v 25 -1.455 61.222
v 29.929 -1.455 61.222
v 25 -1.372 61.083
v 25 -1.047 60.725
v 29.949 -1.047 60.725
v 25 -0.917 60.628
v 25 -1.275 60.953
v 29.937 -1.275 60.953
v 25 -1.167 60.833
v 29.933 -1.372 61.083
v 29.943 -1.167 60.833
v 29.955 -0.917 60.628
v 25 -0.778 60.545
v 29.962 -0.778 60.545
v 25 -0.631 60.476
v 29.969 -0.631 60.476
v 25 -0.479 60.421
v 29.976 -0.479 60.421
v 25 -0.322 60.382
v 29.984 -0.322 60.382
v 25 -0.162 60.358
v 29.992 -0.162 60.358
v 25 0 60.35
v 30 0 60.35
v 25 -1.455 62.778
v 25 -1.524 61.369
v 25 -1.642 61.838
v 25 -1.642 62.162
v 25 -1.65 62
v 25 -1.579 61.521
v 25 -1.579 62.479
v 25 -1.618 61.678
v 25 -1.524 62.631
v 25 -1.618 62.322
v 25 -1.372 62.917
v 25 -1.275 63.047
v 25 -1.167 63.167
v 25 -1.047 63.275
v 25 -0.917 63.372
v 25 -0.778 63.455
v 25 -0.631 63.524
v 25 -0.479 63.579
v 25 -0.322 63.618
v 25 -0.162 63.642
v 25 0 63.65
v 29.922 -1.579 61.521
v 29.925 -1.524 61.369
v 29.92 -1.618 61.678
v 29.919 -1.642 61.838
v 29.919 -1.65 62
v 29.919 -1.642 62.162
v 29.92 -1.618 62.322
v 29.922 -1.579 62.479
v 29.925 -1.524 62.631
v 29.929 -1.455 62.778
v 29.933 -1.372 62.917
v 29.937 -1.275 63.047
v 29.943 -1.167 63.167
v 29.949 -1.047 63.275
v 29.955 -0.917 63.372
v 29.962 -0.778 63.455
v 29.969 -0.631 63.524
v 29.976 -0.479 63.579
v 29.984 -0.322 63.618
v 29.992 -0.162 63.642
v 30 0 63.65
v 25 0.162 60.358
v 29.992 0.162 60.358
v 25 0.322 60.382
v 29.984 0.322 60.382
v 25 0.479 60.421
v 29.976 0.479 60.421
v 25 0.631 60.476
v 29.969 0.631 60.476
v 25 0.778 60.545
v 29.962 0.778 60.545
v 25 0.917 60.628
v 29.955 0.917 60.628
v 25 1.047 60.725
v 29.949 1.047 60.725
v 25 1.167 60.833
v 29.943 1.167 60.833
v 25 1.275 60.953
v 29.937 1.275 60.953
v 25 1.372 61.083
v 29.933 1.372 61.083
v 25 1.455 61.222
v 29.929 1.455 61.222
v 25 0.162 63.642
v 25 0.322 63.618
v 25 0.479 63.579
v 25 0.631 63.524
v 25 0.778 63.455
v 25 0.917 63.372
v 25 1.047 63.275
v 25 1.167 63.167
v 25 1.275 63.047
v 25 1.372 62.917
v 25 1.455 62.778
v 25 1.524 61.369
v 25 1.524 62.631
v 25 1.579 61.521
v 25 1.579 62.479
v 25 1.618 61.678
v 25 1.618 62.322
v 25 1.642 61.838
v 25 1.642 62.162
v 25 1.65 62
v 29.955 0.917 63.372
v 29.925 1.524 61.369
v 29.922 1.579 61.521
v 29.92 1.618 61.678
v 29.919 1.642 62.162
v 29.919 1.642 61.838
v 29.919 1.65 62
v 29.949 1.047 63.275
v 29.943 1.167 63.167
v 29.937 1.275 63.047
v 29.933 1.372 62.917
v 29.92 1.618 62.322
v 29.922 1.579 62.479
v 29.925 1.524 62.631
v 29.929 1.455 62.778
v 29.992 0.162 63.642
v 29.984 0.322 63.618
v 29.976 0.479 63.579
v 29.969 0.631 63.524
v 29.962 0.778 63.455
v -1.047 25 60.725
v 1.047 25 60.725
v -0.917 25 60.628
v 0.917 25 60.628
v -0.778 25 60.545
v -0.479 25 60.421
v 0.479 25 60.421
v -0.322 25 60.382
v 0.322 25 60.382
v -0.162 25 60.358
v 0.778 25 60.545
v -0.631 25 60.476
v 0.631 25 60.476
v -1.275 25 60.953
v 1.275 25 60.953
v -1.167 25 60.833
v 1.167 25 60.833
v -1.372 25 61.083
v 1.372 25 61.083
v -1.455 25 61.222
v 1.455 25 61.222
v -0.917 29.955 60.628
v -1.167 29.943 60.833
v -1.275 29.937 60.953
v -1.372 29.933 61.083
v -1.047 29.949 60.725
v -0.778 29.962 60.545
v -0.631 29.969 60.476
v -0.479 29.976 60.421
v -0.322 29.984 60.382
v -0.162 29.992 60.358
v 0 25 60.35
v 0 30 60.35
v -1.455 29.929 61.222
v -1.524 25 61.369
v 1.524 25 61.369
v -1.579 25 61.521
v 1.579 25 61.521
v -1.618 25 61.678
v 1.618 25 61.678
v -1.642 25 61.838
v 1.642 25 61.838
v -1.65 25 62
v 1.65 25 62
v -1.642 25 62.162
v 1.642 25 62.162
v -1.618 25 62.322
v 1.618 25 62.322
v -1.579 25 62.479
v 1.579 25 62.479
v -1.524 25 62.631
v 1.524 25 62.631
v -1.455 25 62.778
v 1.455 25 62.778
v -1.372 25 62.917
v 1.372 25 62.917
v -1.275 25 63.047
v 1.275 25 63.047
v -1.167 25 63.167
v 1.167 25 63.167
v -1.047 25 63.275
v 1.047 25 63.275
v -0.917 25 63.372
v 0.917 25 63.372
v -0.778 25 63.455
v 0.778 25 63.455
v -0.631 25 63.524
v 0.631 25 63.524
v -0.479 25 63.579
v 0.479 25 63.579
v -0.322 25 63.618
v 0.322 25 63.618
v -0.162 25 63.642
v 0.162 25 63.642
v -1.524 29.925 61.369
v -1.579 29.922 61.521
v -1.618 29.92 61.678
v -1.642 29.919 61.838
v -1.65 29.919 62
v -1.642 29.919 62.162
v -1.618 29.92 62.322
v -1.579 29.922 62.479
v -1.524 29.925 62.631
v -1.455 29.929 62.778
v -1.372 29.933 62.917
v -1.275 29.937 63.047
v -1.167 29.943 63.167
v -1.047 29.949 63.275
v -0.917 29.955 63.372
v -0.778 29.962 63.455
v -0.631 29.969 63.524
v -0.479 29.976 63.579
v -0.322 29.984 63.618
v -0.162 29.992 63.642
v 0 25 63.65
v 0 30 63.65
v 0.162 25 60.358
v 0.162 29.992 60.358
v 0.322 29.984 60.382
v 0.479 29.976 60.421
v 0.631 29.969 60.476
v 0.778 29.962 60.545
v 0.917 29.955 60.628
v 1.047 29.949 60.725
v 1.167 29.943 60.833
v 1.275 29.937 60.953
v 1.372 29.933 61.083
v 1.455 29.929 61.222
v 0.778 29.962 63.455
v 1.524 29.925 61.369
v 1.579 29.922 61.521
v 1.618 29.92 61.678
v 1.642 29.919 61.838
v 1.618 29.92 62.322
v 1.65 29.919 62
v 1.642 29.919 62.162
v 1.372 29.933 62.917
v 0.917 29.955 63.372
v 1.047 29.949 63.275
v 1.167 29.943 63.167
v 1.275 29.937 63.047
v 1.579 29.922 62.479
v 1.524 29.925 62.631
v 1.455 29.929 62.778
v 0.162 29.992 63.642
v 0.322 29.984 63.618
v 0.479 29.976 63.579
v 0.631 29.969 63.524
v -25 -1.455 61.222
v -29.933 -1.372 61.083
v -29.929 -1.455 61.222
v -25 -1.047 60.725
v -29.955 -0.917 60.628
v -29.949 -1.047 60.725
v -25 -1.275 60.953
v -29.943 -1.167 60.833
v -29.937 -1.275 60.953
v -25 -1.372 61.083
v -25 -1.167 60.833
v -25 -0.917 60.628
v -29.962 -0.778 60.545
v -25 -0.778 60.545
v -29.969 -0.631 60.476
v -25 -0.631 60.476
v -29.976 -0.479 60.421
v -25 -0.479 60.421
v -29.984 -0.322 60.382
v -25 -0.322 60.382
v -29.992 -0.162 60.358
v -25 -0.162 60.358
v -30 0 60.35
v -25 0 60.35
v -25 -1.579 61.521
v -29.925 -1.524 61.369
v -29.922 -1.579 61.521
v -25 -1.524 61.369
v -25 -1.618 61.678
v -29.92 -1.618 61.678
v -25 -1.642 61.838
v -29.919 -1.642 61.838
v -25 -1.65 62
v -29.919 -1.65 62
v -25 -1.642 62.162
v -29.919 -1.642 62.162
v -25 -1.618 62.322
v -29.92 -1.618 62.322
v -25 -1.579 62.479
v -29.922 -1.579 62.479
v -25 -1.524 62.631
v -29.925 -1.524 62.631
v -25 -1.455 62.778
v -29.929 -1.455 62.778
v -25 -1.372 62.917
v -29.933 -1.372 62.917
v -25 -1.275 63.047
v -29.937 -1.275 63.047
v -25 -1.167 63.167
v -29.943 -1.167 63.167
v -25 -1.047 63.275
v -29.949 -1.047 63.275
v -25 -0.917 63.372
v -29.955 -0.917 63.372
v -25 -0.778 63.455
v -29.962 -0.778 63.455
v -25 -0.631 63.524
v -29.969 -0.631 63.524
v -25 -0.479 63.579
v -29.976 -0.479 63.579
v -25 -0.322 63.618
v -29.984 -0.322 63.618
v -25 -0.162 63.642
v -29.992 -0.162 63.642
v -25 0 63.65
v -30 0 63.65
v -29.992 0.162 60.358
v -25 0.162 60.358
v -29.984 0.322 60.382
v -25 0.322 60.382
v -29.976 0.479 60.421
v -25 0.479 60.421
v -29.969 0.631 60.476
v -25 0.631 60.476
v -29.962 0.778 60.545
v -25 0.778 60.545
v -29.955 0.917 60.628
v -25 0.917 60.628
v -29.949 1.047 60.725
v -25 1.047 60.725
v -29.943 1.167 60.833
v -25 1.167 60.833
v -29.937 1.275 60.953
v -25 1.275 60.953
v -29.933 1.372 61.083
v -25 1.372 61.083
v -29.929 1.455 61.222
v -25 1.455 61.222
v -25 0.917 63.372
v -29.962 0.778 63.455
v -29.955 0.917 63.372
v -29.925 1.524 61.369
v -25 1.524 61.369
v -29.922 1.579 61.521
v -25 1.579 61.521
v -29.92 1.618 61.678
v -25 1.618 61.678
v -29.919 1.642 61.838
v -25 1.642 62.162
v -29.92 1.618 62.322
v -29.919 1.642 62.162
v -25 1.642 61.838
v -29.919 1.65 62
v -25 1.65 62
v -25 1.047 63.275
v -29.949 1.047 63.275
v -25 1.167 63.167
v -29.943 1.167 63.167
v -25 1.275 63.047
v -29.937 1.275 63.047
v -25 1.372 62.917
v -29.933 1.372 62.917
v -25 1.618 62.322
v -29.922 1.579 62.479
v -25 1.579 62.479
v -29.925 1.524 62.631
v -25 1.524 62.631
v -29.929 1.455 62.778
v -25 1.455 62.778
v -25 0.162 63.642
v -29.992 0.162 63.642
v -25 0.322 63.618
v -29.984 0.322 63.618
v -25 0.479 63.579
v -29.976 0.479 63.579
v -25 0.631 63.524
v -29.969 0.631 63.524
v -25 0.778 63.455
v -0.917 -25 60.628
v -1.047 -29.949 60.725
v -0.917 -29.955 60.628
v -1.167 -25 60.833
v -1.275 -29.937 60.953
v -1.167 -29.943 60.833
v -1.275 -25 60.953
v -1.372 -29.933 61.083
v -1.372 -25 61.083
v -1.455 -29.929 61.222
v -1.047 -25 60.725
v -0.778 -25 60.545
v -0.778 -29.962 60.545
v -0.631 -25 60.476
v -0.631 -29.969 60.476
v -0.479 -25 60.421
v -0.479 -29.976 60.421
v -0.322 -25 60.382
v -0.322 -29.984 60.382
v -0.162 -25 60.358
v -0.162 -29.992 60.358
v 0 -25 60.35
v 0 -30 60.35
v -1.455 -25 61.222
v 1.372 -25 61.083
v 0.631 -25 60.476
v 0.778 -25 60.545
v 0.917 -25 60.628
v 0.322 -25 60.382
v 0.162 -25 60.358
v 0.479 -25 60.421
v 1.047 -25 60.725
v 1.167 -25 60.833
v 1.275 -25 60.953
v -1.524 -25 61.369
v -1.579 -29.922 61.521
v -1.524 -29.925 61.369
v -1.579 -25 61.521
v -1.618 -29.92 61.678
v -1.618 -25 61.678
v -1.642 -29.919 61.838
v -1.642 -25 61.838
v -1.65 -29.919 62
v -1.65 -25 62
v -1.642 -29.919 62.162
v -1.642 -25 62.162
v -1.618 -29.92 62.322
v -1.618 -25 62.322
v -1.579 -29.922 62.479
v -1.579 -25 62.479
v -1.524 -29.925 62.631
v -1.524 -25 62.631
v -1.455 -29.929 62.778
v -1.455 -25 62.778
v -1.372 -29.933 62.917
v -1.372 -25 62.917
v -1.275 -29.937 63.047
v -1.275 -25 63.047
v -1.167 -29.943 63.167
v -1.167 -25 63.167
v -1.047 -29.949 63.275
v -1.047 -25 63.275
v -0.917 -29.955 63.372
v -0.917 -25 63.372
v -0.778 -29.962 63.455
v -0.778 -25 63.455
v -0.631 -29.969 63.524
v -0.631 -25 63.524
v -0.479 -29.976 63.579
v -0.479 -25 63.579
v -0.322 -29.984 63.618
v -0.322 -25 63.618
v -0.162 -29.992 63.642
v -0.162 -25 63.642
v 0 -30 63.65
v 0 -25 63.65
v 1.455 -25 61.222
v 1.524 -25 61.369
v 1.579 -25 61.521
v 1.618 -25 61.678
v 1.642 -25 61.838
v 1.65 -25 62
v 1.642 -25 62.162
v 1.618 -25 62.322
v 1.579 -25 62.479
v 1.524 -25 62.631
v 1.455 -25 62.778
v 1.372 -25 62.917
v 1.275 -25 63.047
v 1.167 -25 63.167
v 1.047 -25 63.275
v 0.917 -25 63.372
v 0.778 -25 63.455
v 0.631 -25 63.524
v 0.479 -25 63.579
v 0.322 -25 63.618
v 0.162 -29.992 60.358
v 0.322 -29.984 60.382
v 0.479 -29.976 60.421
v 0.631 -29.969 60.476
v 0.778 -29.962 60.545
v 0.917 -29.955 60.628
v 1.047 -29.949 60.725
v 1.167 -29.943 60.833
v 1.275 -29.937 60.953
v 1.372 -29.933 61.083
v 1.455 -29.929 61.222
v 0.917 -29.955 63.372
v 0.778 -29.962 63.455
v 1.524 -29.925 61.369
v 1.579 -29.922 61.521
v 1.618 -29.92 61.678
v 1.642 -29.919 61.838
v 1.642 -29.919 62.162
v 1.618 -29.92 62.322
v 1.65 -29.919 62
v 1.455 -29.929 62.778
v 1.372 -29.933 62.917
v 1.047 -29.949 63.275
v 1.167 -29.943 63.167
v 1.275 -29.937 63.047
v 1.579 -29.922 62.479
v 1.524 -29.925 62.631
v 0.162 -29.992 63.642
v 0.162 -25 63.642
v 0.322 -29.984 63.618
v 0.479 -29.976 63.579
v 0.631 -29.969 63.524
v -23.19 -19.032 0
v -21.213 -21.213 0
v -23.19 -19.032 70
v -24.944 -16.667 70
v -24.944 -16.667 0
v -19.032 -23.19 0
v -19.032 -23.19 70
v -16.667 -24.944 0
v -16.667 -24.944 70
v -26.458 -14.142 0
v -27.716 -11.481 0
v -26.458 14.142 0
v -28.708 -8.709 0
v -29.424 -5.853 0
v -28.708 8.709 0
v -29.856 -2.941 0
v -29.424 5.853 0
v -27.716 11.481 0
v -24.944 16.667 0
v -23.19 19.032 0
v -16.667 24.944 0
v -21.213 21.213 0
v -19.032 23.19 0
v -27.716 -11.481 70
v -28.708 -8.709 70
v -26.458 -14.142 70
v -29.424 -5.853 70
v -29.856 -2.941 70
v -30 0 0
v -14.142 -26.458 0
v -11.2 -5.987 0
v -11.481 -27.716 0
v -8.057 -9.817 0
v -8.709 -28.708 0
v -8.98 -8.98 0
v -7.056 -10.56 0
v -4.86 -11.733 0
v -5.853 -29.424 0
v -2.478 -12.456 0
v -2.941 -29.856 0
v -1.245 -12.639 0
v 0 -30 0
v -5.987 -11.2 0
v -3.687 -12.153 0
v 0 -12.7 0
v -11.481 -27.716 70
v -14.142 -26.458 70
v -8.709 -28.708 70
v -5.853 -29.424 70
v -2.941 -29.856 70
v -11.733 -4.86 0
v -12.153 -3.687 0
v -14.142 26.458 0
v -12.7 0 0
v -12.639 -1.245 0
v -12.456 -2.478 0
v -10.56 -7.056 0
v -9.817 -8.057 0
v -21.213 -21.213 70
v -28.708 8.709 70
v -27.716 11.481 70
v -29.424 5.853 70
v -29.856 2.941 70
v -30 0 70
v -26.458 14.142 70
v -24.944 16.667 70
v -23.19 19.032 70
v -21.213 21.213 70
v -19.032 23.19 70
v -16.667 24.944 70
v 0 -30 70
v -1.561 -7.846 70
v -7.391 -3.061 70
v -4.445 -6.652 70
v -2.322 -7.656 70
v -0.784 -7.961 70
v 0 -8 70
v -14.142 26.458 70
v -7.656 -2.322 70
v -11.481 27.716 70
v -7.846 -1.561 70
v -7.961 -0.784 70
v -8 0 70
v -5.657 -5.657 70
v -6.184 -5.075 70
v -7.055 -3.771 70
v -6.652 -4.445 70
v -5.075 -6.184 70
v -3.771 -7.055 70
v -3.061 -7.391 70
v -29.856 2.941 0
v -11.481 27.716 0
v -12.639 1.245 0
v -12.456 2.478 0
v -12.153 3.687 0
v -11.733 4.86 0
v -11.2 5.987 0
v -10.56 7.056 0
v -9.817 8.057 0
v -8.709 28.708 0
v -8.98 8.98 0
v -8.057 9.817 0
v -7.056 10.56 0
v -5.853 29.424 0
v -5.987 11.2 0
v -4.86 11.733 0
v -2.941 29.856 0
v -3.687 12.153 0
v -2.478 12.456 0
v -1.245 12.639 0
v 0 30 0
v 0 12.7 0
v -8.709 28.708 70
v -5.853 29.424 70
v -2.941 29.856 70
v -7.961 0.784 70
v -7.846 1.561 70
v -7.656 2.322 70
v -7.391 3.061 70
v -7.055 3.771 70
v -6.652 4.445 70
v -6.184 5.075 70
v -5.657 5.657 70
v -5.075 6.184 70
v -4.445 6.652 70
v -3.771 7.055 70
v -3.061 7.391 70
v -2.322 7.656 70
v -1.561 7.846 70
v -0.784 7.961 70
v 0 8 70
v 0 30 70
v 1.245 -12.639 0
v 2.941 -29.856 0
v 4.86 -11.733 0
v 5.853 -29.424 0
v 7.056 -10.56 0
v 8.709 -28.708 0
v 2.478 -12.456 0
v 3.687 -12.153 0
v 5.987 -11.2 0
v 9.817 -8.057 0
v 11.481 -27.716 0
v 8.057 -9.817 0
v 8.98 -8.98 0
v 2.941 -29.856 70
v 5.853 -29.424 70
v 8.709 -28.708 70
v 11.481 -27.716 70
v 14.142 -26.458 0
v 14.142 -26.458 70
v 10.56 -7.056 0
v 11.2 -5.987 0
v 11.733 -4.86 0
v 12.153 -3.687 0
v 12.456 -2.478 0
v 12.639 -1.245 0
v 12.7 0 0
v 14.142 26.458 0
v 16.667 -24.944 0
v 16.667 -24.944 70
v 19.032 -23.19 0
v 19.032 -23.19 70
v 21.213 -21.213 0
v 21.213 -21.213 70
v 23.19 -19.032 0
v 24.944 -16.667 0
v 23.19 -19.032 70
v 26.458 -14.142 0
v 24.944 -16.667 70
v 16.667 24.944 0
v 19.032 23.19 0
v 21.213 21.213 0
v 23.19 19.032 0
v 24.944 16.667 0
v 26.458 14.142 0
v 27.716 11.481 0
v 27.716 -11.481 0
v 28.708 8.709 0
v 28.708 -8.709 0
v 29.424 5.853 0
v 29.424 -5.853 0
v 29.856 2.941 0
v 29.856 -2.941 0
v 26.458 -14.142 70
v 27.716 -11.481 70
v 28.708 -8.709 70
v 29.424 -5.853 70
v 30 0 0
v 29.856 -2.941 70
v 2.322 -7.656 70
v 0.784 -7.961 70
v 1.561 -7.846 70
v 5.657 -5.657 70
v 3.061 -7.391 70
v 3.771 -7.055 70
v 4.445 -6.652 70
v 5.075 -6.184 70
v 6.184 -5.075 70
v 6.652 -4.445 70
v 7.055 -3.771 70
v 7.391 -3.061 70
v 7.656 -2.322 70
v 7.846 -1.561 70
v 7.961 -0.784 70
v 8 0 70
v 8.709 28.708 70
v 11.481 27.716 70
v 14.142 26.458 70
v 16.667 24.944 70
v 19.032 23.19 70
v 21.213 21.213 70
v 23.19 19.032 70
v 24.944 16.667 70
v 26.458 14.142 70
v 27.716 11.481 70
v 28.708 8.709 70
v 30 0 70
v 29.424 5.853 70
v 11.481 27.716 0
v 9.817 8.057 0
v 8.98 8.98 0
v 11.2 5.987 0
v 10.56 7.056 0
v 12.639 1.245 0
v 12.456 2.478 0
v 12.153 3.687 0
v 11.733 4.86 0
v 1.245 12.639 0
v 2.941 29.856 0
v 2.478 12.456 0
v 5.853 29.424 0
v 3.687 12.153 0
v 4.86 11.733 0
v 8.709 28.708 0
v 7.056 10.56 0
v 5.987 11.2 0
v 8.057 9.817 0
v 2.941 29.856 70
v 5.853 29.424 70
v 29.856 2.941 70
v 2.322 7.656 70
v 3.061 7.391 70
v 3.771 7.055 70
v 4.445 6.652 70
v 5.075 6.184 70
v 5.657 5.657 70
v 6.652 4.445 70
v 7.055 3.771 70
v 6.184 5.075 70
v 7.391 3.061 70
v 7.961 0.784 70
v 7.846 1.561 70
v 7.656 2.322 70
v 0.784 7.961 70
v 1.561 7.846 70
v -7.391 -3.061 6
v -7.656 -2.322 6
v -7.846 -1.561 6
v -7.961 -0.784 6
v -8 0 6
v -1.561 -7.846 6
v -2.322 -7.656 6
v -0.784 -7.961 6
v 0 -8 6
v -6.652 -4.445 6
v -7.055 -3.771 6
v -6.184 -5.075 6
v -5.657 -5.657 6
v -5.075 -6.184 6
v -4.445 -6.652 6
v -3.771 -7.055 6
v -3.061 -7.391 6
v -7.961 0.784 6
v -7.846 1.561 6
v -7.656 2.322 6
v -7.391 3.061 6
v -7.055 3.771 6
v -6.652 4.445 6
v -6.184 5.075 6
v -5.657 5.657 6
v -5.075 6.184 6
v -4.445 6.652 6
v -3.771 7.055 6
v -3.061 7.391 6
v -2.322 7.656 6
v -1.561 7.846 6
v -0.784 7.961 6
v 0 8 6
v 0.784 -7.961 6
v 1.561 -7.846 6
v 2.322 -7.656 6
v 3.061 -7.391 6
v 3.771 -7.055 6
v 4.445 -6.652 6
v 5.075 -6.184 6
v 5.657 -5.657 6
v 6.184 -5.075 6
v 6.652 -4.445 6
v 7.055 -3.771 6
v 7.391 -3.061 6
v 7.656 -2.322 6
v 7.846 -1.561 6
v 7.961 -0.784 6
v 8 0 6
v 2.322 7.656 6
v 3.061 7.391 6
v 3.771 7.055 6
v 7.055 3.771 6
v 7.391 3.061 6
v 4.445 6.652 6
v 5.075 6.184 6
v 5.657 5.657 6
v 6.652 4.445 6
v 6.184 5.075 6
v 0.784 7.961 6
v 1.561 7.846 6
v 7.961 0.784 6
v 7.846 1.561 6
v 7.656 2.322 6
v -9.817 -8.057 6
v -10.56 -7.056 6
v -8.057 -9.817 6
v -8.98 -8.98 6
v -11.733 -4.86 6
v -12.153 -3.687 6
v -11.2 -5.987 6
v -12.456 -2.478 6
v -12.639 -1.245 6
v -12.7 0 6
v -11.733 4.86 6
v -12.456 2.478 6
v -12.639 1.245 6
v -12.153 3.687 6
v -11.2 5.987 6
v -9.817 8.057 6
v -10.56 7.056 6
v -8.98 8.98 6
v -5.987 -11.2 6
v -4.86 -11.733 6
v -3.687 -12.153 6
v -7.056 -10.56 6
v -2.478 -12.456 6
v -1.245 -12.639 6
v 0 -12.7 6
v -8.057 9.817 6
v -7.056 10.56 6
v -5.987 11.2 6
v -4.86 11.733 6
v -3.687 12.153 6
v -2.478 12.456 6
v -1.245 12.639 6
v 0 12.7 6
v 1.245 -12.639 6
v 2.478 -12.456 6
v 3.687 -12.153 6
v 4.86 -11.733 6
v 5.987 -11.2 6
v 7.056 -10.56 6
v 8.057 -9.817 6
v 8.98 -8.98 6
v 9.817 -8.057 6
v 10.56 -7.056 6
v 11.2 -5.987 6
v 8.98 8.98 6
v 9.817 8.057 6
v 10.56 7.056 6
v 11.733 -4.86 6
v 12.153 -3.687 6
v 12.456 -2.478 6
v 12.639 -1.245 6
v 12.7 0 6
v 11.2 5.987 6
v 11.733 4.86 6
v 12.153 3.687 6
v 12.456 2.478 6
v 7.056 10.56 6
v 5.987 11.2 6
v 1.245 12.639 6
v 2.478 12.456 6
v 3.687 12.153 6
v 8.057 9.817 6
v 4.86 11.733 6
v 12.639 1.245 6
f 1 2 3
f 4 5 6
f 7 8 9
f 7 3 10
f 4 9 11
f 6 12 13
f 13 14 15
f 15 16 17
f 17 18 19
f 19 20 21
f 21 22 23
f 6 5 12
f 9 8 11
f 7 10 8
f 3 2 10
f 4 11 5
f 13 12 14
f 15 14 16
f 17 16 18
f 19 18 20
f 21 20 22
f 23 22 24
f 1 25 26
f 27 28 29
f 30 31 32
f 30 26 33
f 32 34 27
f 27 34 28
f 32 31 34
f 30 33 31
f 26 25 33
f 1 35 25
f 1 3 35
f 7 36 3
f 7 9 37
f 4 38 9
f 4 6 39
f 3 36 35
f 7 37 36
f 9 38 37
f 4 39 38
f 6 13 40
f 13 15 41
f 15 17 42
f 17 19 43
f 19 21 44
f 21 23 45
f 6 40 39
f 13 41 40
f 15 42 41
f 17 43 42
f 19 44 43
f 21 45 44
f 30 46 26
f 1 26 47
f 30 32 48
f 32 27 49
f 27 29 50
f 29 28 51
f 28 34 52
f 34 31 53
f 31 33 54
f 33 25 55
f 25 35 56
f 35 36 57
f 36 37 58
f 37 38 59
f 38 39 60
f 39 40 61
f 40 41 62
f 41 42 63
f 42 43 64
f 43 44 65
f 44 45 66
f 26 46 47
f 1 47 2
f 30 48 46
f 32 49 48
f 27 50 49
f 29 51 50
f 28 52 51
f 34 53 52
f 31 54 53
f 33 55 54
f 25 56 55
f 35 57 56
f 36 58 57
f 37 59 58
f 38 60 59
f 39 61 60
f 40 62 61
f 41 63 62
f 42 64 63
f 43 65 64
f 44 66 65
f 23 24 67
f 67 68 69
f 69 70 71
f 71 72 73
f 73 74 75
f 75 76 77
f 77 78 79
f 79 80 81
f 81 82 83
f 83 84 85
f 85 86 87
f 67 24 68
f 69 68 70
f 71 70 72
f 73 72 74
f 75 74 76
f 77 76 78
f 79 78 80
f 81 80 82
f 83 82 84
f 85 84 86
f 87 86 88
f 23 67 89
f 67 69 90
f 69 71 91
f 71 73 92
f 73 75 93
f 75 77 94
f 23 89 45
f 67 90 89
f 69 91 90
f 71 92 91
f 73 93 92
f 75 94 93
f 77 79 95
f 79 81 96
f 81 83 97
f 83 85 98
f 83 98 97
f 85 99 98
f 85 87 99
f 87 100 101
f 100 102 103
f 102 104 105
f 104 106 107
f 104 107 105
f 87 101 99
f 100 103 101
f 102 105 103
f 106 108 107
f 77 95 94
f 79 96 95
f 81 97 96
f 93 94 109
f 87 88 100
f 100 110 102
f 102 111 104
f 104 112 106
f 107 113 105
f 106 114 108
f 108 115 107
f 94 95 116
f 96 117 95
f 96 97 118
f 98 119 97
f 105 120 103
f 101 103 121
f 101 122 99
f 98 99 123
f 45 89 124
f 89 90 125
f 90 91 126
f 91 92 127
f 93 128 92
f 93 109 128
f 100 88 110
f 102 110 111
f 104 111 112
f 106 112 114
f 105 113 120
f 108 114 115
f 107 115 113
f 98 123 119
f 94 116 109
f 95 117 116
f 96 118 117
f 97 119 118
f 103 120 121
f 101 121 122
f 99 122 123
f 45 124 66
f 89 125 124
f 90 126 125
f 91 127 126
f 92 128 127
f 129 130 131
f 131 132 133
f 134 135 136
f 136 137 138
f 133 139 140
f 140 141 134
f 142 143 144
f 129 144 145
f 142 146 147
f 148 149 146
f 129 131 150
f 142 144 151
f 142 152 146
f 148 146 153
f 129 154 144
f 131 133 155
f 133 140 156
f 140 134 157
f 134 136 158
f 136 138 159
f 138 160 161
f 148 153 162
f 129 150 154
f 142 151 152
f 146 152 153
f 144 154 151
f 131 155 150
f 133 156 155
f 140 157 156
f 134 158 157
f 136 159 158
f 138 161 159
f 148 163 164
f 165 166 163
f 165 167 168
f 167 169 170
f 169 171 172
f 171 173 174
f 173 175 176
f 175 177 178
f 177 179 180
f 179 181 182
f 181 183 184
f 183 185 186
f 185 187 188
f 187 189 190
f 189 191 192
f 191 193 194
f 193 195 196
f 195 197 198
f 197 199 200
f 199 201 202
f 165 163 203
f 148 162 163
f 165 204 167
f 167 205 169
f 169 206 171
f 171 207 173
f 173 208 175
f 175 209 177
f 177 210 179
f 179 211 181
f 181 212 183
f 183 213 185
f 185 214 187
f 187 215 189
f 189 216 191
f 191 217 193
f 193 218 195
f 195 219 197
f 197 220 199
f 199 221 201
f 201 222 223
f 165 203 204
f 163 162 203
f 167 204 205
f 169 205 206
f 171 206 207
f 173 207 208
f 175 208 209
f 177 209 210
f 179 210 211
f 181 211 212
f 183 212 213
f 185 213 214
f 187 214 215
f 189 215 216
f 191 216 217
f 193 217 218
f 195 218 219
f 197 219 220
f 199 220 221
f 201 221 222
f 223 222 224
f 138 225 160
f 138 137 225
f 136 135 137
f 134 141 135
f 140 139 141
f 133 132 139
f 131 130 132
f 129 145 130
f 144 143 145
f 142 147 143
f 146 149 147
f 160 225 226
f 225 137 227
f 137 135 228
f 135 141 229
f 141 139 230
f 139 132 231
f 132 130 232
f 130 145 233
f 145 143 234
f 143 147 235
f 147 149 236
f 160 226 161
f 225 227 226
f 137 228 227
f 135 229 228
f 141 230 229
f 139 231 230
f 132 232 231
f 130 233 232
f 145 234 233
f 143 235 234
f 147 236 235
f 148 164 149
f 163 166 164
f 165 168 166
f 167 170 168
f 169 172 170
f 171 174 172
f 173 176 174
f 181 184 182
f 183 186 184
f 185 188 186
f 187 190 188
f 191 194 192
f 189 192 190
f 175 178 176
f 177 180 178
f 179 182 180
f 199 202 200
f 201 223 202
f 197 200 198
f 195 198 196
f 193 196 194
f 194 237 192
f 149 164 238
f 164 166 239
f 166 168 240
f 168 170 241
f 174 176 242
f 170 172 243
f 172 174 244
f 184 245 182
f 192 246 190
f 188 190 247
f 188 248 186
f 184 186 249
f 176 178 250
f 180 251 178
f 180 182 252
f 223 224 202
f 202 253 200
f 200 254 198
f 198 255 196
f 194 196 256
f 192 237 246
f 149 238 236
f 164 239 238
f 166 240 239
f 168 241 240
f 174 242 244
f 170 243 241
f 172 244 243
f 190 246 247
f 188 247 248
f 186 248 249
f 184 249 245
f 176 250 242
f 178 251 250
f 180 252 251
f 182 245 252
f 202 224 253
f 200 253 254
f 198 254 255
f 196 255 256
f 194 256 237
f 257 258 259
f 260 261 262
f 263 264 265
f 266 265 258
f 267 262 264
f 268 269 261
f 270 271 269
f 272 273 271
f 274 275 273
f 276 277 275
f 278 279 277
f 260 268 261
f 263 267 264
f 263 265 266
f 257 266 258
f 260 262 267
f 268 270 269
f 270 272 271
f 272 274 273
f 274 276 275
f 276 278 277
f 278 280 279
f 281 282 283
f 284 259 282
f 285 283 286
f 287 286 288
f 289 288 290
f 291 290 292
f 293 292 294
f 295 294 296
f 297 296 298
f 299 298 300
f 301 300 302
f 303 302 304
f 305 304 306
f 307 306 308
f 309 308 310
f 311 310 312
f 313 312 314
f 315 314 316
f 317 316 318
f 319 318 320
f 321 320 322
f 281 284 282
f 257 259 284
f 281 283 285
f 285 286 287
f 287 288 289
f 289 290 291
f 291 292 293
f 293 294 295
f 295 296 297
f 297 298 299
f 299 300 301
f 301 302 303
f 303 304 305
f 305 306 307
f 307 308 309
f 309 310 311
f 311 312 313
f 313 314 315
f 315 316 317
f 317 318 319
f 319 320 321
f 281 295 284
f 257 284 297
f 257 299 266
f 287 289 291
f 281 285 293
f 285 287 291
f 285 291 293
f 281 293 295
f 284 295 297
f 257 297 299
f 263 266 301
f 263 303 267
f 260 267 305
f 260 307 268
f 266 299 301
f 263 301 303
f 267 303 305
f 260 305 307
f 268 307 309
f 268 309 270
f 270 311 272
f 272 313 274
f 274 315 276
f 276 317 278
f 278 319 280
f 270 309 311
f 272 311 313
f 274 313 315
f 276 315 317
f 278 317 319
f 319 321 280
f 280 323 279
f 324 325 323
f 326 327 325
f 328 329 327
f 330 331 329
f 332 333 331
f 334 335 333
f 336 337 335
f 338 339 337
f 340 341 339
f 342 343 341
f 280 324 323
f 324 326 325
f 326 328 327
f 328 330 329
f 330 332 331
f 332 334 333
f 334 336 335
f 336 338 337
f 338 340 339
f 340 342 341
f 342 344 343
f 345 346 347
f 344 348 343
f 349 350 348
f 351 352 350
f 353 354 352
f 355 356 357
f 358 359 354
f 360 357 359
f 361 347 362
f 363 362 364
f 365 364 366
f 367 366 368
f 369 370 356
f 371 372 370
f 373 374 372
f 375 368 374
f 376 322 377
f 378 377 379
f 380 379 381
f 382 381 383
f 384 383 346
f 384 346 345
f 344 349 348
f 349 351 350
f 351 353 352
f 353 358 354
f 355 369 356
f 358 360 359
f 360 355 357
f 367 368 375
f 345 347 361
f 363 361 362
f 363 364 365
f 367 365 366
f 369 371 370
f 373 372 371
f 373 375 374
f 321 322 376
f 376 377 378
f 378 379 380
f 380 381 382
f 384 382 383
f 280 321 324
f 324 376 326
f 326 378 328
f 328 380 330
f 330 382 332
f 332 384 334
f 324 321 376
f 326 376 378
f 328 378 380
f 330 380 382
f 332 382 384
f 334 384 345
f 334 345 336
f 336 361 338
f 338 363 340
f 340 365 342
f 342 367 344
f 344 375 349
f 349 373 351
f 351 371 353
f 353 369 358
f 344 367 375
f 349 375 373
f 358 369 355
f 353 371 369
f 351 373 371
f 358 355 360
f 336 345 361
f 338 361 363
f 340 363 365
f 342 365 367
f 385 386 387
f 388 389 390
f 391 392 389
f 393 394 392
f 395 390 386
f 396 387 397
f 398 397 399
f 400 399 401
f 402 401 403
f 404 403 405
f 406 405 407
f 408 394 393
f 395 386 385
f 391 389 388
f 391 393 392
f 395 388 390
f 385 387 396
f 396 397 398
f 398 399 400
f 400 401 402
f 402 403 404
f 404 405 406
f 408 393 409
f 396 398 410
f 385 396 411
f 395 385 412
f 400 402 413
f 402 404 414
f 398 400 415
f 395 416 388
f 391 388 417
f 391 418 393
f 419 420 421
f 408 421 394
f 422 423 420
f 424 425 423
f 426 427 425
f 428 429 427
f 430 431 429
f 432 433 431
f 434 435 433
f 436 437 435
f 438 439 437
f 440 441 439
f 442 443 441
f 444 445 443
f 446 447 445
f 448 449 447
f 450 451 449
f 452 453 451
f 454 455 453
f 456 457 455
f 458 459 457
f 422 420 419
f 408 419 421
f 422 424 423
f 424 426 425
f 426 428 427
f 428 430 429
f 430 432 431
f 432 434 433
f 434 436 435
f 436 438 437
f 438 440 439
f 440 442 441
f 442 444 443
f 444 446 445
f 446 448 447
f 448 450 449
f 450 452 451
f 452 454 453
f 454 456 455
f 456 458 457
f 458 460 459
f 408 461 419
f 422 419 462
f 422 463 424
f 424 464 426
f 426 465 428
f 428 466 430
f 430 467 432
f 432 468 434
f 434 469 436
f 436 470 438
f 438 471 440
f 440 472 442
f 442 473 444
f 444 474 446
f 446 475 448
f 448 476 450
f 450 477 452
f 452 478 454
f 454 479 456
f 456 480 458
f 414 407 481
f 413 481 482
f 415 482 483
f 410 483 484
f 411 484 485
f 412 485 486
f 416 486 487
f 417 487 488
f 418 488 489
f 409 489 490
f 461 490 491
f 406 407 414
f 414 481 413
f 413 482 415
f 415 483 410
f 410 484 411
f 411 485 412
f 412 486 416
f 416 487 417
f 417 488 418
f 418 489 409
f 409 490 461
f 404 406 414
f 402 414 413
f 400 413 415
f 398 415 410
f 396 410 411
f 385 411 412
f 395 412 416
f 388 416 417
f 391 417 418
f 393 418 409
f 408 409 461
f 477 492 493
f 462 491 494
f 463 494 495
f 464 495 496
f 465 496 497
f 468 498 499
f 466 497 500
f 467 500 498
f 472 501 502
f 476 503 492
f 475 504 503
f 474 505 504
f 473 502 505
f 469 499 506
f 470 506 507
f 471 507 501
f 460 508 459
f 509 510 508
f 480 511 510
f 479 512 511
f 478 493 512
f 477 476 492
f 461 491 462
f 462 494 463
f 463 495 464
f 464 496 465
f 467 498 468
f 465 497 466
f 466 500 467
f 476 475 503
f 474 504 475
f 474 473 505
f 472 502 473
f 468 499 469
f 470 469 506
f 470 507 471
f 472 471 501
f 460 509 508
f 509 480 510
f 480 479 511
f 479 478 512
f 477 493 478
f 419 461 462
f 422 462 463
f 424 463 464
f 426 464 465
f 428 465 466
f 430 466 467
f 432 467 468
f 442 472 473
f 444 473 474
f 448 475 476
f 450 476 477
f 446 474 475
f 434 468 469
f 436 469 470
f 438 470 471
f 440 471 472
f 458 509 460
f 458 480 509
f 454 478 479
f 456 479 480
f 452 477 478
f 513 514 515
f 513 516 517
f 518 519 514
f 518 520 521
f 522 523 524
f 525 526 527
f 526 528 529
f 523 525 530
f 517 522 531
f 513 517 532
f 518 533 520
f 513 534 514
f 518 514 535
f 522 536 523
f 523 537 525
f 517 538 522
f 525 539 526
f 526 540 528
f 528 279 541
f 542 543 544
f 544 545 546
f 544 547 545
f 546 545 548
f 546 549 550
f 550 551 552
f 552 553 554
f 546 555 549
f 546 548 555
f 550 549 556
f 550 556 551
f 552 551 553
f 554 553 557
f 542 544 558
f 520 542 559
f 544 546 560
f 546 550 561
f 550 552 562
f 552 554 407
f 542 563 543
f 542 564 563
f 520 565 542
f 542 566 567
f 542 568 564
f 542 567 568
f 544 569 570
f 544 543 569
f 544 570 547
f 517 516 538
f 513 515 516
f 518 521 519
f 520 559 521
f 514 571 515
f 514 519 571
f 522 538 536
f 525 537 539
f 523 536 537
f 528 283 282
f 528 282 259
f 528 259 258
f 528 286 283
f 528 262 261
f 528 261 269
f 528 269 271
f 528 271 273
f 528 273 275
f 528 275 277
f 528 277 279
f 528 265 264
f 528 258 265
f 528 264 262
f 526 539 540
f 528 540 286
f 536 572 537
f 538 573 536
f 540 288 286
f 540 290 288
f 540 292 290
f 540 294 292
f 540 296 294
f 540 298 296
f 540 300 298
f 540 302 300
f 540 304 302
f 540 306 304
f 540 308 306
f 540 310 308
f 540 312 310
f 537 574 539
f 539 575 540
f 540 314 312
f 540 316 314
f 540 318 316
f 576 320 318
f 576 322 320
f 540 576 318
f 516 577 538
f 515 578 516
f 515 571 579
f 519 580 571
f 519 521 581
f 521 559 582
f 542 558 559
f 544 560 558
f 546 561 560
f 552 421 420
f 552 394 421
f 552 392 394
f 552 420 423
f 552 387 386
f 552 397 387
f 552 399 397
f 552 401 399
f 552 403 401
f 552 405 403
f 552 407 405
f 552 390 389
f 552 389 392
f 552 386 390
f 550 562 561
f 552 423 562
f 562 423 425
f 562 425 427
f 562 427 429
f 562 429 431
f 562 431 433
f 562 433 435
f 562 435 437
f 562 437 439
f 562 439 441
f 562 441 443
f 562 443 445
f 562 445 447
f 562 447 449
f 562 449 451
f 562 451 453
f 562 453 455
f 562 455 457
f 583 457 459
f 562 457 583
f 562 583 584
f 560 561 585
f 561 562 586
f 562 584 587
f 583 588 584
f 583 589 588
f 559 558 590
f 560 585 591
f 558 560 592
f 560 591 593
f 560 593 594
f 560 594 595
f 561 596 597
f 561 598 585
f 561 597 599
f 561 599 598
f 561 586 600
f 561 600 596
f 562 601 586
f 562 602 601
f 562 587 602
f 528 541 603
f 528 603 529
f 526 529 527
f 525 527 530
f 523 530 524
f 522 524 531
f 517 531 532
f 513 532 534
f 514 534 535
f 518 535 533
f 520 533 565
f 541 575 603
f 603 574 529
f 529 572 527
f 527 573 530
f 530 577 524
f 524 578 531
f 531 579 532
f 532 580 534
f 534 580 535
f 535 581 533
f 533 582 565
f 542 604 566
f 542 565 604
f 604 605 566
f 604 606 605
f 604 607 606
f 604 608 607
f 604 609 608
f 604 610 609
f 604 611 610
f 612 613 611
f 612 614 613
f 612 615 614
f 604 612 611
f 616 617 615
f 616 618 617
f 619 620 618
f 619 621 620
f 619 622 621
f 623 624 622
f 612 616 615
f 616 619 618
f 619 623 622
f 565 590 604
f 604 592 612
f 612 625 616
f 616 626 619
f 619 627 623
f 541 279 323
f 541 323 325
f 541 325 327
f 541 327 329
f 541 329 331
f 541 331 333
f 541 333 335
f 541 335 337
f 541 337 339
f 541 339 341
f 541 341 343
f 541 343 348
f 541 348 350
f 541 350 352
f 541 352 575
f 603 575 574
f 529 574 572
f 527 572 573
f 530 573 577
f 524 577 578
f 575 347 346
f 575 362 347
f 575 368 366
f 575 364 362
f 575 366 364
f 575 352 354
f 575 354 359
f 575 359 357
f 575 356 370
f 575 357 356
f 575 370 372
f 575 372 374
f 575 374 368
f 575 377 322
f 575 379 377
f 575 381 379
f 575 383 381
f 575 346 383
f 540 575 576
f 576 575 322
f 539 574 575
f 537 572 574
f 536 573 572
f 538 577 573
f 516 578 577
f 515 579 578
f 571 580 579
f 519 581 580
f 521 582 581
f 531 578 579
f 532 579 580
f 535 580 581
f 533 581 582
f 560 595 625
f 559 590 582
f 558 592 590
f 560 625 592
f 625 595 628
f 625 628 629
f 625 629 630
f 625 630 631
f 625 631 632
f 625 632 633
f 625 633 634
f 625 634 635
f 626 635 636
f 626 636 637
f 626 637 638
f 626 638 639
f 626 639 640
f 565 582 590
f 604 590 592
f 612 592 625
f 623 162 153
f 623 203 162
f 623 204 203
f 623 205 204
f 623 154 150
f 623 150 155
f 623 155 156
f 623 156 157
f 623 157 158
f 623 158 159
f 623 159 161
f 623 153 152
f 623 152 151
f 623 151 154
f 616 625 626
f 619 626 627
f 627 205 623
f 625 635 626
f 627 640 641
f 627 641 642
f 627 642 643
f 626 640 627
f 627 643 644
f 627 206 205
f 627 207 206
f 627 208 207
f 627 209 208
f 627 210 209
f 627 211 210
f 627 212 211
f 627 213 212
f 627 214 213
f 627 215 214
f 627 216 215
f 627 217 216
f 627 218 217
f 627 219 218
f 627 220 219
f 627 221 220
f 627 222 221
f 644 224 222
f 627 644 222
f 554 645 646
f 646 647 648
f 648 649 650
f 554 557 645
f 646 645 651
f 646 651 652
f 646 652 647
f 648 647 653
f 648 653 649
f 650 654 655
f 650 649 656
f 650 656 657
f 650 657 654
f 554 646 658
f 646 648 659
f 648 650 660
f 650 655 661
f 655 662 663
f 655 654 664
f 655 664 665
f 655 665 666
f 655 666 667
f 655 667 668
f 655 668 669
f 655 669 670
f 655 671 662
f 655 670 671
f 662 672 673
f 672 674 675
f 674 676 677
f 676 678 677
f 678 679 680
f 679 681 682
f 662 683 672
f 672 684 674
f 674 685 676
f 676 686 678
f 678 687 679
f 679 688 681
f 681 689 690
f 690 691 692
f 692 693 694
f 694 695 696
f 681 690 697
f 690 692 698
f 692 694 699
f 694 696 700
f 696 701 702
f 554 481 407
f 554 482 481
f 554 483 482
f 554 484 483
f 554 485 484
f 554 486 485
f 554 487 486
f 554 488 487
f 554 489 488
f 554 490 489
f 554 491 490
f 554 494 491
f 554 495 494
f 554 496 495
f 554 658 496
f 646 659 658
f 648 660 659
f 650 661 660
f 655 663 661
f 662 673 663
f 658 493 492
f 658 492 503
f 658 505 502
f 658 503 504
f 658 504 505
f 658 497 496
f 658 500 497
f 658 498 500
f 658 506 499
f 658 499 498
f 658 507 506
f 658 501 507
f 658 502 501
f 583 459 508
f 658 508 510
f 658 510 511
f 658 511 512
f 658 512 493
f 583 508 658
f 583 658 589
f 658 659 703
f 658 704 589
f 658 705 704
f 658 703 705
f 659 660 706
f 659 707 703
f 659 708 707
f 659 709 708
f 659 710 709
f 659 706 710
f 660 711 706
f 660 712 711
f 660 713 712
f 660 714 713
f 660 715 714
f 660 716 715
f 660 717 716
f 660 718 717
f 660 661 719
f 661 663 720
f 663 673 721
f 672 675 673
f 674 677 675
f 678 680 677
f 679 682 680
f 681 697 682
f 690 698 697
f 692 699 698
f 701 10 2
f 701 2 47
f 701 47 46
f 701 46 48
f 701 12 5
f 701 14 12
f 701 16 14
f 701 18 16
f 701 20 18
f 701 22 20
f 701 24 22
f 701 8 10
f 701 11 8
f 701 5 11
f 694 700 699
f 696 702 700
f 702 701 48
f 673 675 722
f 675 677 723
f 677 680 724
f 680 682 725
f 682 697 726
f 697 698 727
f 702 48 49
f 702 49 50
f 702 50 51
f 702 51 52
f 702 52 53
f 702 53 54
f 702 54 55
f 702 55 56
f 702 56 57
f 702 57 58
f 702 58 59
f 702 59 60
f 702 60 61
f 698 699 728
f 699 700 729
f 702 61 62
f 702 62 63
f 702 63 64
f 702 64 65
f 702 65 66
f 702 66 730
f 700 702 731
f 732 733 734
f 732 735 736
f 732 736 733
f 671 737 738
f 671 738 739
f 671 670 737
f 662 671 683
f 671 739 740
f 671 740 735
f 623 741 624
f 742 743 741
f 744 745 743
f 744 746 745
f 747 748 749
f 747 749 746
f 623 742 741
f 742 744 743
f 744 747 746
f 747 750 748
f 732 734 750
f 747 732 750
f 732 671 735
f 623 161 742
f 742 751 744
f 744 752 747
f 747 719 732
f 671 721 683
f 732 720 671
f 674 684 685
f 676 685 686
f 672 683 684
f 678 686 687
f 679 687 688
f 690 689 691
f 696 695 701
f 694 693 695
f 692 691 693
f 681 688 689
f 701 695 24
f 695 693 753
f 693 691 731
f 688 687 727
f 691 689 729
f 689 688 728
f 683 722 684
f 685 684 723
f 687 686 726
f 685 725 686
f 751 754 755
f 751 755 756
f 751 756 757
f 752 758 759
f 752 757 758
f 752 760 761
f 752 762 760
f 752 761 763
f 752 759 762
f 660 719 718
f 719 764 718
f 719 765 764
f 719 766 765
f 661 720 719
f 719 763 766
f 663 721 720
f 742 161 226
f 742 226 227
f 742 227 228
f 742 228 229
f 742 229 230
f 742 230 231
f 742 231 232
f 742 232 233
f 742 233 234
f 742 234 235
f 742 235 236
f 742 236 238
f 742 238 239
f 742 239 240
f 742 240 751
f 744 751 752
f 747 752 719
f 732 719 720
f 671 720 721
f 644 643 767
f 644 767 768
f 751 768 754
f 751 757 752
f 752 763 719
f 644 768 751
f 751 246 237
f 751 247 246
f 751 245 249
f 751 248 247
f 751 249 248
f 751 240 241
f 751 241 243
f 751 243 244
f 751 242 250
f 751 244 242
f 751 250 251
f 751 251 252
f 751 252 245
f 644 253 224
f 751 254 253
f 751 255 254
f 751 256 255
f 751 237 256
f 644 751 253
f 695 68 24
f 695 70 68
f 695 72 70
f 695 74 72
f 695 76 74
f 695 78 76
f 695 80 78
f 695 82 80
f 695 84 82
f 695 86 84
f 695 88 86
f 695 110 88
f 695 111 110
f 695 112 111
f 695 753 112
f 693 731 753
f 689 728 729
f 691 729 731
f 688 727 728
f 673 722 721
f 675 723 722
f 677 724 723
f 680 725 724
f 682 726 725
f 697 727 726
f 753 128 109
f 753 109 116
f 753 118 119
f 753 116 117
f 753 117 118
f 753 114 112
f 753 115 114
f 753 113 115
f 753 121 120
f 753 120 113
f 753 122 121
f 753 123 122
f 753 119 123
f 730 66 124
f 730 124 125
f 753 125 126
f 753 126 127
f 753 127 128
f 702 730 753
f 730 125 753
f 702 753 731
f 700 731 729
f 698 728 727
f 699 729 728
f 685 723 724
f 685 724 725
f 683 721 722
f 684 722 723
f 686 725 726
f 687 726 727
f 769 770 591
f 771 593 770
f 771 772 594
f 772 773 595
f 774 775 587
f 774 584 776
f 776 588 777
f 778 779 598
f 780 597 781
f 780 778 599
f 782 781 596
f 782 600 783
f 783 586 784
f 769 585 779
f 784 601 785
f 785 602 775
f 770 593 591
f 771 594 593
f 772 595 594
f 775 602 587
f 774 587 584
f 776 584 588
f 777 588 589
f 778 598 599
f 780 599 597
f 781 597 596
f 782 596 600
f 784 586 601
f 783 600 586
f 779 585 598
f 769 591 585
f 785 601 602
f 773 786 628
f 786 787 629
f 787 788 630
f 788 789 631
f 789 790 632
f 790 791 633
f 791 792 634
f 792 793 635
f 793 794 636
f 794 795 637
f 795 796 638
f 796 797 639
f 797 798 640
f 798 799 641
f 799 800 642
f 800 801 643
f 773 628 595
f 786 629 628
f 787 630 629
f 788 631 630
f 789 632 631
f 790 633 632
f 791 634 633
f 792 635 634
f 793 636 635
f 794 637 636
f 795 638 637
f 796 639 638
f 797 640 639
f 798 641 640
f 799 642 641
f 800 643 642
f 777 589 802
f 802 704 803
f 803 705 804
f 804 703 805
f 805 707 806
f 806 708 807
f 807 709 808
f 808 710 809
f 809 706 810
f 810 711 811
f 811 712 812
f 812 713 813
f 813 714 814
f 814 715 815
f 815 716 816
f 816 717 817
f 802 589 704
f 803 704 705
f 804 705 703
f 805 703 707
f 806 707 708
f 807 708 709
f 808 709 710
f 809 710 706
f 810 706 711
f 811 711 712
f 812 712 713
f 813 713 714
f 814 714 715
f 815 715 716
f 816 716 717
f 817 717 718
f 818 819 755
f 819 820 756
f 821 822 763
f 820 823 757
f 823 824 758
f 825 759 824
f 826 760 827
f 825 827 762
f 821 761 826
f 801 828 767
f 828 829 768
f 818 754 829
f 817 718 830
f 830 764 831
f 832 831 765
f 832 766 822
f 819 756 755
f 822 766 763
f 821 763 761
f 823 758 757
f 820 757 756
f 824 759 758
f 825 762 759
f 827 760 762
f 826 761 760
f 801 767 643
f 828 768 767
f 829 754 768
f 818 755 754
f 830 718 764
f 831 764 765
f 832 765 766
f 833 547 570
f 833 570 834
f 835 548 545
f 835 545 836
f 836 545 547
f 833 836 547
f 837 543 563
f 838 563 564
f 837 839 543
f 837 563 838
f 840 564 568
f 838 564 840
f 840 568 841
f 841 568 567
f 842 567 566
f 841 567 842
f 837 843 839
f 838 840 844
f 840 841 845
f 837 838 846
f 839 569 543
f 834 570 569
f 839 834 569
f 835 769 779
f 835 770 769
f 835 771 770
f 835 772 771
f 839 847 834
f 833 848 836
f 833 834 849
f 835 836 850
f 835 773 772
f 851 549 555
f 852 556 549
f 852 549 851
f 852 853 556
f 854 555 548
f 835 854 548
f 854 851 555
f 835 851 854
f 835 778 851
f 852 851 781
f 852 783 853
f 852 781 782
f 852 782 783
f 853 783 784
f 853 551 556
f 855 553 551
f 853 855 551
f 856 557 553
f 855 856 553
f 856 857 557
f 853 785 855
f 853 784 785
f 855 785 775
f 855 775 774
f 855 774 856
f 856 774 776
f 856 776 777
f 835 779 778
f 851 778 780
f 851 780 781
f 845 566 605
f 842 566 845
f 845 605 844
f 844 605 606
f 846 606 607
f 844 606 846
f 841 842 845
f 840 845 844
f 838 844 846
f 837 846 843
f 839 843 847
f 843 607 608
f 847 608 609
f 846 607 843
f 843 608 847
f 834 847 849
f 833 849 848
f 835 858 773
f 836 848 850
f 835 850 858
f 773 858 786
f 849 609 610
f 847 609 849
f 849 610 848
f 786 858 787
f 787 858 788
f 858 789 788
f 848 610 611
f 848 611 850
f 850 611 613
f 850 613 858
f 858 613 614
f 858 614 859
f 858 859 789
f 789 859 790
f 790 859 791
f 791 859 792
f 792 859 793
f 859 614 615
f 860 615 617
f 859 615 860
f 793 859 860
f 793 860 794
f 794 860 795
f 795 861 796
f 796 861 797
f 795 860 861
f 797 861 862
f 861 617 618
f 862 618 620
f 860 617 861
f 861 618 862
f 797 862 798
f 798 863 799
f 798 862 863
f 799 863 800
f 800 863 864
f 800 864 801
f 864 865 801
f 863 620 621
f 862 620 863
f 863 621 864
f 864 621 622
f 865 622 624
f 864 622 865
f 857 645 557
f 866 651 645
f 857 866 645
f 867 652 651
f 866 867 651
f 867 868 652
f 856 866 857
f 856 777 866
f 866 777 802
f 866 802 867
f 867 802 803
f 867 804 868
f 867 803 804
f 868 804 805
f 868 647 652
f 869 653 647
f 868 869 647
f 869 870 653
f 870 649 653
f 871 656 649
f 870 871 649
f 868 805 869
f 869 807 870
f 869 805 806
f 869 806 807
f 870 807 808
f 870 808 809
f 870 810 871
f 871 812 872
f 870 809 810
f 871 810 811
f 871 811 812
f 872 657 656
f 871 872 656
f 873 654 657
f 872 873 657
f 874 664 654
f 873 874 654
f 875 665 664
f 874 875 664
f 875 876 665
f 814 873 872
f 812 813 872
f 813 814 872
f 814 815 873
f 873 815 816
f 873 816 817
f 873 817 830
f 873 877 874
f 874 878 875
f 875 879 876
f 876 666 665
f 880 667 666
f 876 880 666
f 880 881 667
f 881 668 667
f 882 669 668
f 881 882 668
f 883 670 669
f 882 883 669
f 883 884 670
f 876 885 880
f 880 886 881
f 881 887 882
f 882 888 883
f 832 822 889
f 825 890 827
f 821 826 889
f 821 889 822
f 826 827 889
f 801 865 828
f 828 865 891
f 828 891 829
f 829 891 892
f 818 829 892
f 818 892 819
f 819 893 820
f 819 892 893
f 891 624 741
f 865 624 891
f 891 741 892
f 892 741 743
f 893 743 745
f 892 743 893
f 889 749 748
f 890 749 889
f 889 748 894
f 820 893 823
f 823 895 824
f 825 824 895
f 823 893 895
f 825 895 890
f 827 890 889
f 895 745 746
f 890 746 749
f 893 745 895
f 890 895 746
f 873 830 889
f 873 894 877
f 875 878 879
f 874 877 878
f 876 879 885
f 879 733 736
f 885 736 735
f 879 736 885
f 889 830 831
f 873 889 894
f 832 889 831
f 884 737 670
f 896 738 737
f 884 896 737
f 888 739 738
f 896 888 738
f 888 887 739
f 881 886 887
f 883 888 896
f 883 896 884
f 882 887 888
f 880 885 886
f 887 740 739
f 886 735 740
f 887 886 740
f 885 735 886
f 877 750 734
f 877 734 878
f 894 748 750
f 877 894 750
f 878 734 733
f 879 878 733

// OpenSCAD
// file: util.scad
// Shared helper modules for node-dock parts.
include <params.scad>

// Boss for a heat-set insert. h = total boss height, with insert pocket
// drilled from the top.
module insert_boss(h = 8) {
    difference() {
        cylinder(h = h, d = M3_INSERT_D + 2 * WALL);
        translate([0, 0, h - M3_INSERT_H])
            cylinder(h = M3_INSERT_H + 0.1, d = M3_INSERT_D);
    }
}

// Through-hole for M3 clearance.
module m3_through(h) {
    cylinder(h = h + 0.2, d = M3_CLEAR, center = false);
}

// Alignment peg (printed solid).
module peg(h = 8) {
    cylinder(h = h, d = PEG_D);
}

// Alignment-peg socket.
module peg_hole(h = 8) {
    cylinder(h = h + 0.1, d = PEG_D + 0.2);
}

// Rounded rectangle (2D) for shells.
module rrect(x, y, r = 3) {
    hull() for (sx = [-1, 1], sy = [-1, 1])
        translate([sx * (x/2 - r), sy * (y/2 - r), 0]) circle(r = r);
}

// Servo cavity (rectangular box, centered XY, base at z=0).
module servo_cavity(x, y, z) {
    translate([-x/2, -y/2, 0]) cube([x, y, z + 0.1]);
}
// file: params.scad
// Shared parameters for node-dock shell.
// All dimensions in millimeters. Sourced from
//   ../../bodylink/sim/bodies/dock_humanoid.xml
// where they are in meters.

// ── Global tolerances ────────────────────────────────────────────────
WALL        = 2.4;   // 3 perimeters at 0.4 mm nozzle / 0.2 mm layer
FIT         = 0.3;   // press-fit clearance on servo cavities
PHONE_FIT   = 0.5;   // clearance around phone outline
M3_CLEAR    = 3.3;   // M3 clearance hole
M3_INSERT_D = 5.0;   // heat-set insert outer Ø
M3_INSERT_H = 5.0;   // heat-set insert depth
PEG_D       = 4.0;   // alignment peg Ø (peg) / hole Ø is PEG_D + 0.2

$fn = 64;            // smooth curves by default

// ── Base ─────────────────────────────────────────────────────────────
BASE_D      = 240;
BASE_H      = 50;
BASE_SPLIT  = 25;    // halve the disc horizontally
BASE_FLANGE_D = 90;
BASE_FLANGE_H = 10;

// ── Leg shaft ────────────────────────────────────────────────────────
LEG_D       = 60;
LEG_H       = 70;
LEG_BORE    = 16;    // cable channel Ø

// ── Trunk ────────────────────────────────────────────────────────────
TRUNK_X     = 100;
TRUNK_Y     = 80;
TRUNK_Z     = 140;

// ── Neck stub (enlarged from XML 30³ to fit MG996R + MG90S stacked) ──
NECK_X      = 30;
NECK_Y      = 40;
NECK_Z      = 40;

// ── Head / phone cradle ──────────────────────────────────────────────
// XML head_plate visible face: 200 × 100 mm (landscape), 20 mm thick
// XML head_frame_back: 216 × 26 × 114 mm
HEAD_X      = 216;
HEAD_Y      = 26;
HEAD_Z      = 114;
PHONE_X     = 165;   // typical 6.1" phone outline; iPhone 15-class
PHONE_Y     = 9;     // phone thickness
PHONE_Z     = 76;
BEZEL_LIP   = 6;     // visible-face overlap on the front bezel

// ── Shoulder bracket ─────────────────────────────────────────────────
SHB_X       = 36;
SHB_Y       = 28;
SHB_Z       = 28;

// ── Arm ──────────────────────────────────────────────────────────────
ARM_D       = 26;
ARM_L       = 60;

// ── Servo cavities (datasheet + FIT clearance) ───────────────────────
// DS3218 standard servo body: 40 × 20 × 38.5 + cable boss
DS3218_X = 40.0 + FIT;
DS3218_Y = 20.0 + FIT;
DS3218_Z = 38.5 + FIT;
DS3218_EAR_W = 54.5;   // mounting-ear span
DS3218_EAR_T = 2.5;

// MG996R: 40.7 × 19.7 × 42.9
MG996R_X = 40.7 + FIT;
MG996R_Y = 19.7 + FIT;
MG996R_Z = 42.9 + FIT;

// MG90S / SG90: 22.8 × 12.2 × 28.5 (MG90S body height includes flange)
MG90S_X = 22.8 + FIT;
MG90S_Y = 12.2 + FIT;
MG90S_Z = 28.5 + FIT;
// main file
// Leg shaft — hollow tube between base and trunk.
// Couples DS3218 horn at bottom, bolts into trunk back-shell floor at top.
include <params.scad>
use <util.scad>

HORN_BOSS_H = 6;
HORN_D      = 25;   // 25T servo horn outer Ø

module leg_shaft() {
    difference() {
        cylinder(h = LEG_H, d = LEG_D);

        // Cable channel.
        translate([0, 0, -0.1])
            cylinder(h = LEG_H + 0.2, d = LEG_BORE);

        // Servo-horn pocket at bottom (Ø25 × 6 mm) + 4 horn screw holes.
        translate([0, 0, -0.1])
            cylinder(h = HORN_BOSS_H + 0.1, d = HORN_D + 0.4);
        for (a = [0 : 90 : 359])
            rotate([0, 0, a])
                translate([7, 0, -0.1])
                    cylinder(h = HORN_BOSS_H + 0.1, d = 2.5);

        // 4 M3 clearance holes near the top, for bolting to trunk floor.
        for (a = [0 : 90 : 359])
            rotate([0, 0, a])
                translate([LEG_D/2 - 5, 0, LEG_H - 8])
                    rotate([0, 90, 0])
                        cylinder(h = 6, d = M3_CLEAR);
    }
}

leg_shaft();
